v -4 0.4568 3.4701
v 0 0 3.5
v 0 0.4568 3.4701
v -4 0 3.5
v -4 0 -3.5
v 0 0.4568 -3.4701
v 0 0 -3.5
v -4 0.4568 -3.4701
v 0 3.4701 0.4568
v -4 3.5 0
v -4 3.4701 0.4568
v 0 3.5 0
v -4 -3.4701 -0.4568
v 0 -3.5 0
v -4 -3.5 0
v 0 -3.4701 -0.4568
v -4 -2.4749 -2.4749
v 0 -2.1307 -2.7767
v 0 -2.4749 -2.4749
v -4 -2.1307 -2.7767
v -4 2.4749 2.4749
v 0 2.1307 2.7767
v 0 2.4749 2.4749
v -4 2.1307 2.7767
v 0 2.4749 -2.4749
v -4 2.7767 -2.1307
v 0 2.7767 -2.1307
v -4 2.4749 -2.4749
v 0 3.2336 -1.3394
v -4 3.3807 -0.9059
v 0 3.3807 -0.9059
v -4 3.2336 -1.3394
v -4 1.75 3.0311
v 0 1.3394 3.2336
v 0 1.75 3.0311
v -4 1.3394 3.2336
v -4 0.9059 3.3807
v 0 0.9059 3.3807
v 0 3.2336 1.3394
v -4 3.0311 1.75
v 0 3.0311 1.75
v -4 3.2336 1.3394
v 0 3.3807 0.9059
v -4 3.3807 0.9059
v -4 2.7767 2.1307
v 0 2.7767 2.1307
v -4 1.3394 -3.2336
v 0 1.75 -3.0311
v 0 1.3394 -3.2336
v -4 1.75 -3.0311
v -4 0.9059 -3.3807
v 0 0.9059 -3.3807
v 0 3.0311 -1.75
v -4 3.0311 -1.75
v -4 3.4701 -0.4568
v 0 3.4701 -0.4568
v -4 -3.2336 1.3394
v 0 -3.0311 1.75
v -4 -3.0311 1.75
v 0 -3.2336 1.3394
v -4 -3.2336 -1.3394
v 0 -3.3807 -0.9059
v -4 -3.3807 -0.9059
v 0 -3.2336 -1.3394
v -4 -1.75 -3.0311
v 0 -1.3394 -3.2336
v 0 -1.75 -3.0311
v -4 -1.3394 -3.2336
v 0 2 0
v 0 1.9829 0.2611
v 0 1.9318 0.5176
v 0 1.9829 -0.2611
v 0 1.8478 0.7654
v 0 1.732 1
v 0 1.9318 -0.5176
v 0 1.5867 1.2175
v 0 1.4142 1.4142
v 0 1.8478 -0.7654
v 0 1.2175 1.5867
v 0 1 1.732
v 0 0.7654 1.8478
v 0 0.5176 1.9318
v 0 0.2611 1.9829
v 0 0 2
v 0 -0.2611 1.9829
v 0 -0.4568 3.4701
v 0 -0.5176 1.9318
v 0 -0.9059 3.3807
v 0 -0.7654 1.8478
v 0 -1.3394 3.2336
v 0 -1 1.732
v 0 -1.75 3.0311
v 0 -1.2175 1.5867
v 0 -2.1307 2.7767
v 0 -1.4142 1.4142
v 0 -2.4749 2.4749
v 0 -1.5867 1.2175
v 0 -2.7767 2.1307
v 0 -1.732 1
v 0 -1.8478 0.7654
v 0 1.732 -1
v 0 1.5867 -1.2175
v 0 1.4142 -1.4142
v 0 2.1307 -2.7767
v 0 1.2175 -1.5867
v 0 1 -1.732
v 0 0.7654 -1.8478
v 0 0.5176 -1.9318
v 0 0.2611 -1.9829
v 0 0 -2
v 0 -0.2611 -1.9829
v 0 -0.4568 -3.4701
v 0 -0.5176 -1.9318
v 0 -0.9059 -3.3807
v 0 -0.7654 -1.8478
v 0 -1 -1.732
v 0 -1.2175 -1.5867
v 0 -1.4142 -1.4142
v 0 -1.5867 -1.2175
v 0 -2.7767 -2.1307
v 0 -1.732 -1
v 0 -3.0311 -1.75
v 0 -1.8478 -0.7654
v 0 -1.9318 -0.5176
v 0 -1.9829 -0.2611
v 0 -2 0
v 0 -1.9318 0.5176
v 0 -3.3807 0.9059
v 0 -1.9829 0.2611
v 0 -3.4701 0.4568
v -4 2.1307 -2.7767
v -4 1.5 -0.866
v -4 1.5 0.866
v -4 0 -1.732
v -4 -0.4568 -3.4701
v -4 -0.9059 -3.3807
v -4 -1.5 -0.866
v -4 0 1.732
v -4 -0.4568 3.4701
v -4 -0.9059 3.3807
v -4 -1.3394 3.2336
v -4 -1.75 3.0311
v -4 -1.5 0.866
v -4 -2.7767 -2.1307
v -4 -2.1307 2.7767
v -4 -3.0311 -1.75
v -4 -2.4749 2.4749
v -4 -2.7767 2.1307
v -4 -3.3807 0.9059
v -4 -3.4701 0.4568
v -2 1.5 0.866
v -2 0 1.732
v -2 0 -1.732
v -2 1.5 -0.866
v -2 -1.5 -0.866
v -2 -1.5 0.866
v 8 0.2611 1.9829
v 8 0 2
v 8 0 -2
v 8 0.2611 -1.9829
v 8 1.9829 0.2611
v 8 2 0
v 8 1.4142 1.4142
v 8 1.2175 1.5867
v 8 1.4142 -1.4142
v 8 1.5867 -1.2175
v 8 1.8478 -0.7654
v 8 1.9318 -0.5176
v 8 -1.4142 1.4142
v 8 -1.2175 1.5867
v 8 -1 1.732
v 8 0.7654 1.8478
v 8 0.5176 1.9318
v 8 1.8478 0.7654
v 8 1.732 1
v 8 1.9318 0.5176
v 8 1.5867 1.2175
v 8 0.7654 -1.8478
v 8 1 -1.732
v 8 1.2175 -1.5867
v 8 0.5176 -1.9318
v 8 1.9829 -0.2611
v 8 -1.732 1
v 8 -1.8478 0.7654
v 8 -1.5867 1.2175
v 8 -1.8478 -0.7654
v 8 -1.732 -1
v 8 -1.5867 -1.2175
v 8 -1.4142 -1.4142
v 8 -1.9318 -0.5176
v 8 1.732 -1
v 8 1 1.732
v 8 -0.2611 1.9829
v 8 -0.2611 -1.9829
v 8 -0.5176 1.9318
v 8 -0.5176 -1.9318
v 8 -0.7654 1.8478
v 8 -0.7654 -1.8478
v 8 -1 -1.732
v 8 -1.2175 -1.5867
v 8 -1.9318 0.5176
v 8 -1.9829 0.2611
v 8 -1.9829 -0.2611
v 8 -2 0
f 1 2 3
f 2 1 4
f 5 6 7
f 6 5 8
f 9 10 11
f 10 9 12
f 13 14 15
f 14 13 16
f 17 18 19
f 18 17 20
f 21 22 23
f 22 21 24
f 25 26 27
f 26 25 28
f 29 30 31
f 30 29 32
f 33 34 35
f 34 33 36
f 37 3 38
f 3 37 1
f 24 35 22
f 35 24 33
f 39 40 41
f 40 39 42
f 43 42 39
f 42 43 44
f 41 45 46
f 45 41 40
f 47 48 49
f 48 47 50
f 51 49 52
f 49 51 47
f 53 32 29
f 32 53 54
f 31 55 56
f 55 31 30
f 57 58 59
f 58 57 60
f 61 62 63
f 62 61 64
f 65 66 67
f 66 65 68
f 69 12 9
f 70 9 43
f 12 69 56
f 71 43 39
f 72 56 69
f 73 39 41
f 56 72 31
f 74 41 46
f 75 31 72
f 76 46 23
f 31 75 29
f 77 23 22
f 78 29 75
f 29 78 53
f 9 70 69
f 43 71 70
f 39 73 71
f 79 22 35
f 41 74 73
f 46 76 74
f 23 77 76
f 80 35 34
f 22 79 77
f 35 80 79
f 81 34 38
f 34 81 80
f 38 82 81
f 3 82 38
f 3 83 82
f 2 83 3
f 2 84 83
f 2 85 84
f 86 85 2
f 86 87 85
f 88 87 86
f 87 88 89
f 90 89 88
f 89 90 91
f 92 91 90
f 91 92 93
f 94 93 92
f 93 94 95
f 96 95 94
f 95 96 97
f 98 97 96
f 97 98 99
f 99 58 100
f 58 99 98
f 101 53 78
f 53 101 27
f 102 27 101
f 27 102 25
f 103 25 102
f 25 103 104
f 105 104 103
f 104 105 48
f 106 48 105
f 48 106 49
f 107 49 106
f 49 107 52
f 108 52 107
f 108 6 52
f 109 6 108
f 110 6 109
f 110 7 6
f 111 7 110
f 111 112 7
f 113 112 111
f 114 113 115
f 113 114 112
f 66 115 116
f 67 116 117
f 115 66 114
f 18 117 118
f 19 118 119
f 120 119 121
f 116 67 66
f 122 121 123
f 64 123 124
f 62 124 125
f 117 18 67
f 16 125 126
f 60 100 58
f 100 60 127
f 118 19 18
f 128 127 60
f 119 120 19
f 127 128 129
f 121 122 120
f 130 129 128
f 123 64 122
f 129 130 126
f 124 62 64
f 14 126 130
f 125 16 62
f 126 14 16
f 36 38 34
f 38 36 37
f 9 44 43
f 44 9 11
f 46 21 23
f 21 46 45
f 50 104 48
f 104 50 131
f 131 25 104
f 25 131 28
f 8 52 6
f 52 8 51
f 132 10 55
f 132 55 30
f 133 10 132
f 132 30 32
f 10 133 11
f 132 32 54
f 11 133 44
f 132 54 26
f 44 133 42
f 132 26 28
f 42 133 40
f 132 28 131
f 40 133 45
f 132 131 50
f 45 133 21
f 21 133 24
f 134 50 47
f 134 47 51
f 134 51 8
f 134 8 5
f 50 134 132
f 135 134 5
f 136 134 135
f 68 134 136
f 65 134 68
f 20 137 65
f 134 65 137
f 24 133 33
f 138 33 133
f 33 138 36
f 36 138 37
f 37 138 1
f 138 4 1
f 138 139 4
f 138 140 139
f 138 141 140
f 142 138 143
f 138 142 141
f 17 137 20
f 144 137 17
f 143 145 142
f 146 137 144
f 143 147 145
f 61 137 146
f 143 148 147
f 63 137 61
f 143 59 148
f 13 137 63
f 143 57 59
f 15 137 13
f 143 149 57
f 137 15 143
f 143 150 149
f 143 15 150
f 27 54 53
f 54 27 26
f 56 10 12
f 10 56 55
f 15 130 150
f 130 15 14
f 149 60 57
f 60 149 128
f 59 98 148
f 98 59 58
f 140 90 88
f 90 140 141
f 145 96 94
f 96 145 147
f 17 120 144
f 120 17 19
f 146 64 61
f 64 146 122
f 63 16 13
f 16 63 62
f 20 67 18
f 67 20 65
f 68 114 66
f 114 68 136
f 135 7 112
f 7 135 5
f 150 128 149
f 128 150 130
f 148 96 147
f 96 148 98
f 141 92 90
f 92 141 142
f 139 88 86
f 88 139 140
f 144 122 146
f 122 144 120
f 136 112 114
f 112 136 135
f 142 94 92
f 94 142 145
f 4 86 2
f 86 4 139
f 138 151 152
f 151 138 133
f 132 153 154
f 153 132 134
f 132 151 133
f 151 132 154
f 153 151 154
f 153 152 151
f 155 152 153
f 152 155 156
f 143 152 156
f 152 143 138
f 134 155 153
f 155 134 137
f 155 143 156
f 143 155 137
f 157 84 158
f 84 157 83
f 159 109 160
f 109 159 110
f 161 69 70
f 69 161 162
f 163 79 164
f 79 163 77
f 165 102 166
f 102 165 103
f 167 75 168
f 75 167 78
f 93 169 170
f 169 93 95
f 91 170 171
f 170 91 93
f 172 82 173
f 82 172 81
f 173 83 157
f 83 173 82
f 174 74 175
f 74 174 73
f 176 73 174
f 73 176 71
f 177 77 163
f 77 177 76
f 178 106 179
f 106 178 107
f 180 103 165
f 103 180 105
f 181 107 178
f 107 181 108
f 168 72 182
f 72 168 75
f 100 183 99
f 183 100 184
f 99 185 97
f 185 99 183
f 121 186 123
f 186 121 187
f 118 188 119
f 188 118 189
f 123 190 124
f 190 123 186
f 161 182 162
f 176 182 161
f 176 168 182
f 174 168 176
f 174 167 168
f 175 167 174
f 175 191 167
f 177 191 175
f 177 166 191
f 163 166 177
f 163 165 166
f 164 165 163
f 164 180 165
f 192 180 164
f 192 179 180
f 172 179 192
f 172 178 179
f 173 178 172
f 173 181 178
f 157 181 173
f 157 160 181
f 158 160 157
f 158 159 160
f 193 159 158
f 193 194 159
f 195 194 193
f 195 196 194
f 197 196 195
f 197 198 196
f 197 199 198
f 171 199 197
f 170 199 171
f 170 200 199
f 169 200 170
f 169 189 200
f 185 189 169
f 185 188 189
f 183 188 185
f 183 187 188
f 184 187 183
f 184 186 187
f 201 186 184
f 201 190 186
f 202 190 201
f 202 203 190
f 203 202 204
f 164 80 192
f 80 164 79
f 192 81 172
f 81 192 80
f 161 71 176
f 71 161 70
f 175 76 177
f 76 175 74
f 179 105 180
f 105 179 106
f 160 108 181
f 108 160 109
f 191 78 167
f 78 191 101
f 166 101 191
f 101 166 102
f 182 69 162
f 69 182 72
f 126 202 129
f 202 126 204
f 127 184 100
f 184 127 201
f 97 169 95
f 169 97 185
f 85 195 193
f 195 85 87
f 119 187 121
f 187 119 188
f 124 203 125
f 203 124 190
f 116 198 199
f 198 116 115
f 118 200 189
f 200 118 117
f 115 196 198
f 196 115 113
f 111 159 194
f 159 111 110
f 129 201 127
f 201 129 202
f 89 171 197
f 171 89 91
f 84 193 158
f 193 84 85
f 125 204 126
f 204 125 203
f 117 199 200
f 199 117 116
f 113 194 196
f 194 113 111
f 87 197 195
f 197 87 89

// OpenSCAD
// file: ../../../lib/nutsnbolts/data-access.scad
// Norm Nuts and Bolts - a OpenSCAD library
// Copyright (C) 2012  Johannes Kneer

// This program is free software: you can redistribute it and/or modify
// it under the terms of the GNU General Public License as published by
// the Free Software Foundation, either version 3 of the License, or
// (at your option) any later version.

// This program is distributed in the hope that it will be useful,
// but WITHOUT ANY WARRANTY; without even the implied warranty of
// MERCHANTABILITY or FITNESS FOR A PARTICULAR PURPOSE.  See the
// GNU General Public License for more details.

// You should have received a copy of the GNU General Public License
// along with this program.  If not, see <http://www.gnu.org/licenses/>.


// DATABASE ACCESS FUNCTIONS AND CONSTANTS



// == CONSTANTS ==

// screw table access keys
_NB_S_DESC            = 0;
_NB_S_FAMKEY			    = 1;
_NB_S_LENGTH          = 2;
_NB_S_NOTHREAD_LENGTH = 3;

_NB_F_DESC			      = 0;
_NB_F_OUTER_DIA       = 1;
_NB_F_INNER_DIA       = 2;
_NB_F_LEAD            = 3;
_NB_F_KEY             = 4;
_NB_F_KEY_DEPTH       = 5;
_NB_F_HEAD_HEIGHT     = 6;
_NB_F_HEAD_DIA        = 7;
_NB_F_NUT_KEY         = 8;
_NB_F_NUT_HEIGHT      = 9;
_NB_F_PITCH_FINE      = 10;
_NB_F_PITCH_MEDIUM    = 11;
_NB_F_PITCH_COARSE    = 12;


// == FUNCTIONS ==

// _get_screw("descriptor")   with descriptor = M8x25
//   find the line for a general object in the data matrix

function _get_screw(n) = data_screw[search([n], data_screw)[0]];
function _get_screw_fam(n) = data_screw_fam[search([_get_screw(n)[_NB_S_FAMKEY]], data_screw_fam)[0]];

function _get_fam(n) = data_screw_fam[search([n], data_screw_fam)[0]];


// _get_XXXXX("descriptor") functions
// find a single property in the database

function _get_desc(n)        = _get_screw(n)[_NB_S_DESC];
function _get_famkey(n)         = _get_screw(n)[_NB_S_FAMKEY];
function _get_length(n)      = _get_screw(n)[_NB_S_LENGTH];
function _get_nt_length(n)   = _get_screw(n)[_NB_S_NOTHREAD_LENGTH];

function _get_outer_dia(n)   = _get_screw_fam(n)[_NB_F_OUTER_DIA];
function _get_inner_dia(n)   = _get_screw_fam(n)[_NB_F_INNER_DIA];
function _get_lead(n)        = _get_screw_fam(n)[_NB_F_LEAD];
function _get_head_height(n) = _get_screw_fam(n)[_NB_F_HEAD_HEIGHT];
function _get_head_dia(n)    = _get_screw_fam(n)[_NB_F_HEAD_DIA];
function _get_nut_key(n)     = _get_screw_fam(n)[_NB_F_NUT_KEY];
function _get_nut_height(n)  = _get_screw_fam(n)[_NB_F_NUT_HEIGHT];
function _get_fine_pitch(n)  = _get_screw_fam(n)[_NB_F_PITCH_FINE];
function _get_medium_pitch(n)  = _get_screw_fam(n)[_NB_F_PITCH_MEDIUM];
function _get_coarse_pitch(n)  = _get_screw_fam(n)[_NB_F_PITCH_COARSE];
// main file
/**********************************************************************************************************************
 **
 ** parts/vitamins/screw_M4x8.scad
 **
 ** This file renders a screw of the dimensions specified by the file name.
 **
 **********************************************************************************************************************/

include <../../../lib/nutsnbolts/cyl_head_bolt.scad>;

$fn = 48;
rotate([0, -90, 0])
	screw("M4x8"); 
